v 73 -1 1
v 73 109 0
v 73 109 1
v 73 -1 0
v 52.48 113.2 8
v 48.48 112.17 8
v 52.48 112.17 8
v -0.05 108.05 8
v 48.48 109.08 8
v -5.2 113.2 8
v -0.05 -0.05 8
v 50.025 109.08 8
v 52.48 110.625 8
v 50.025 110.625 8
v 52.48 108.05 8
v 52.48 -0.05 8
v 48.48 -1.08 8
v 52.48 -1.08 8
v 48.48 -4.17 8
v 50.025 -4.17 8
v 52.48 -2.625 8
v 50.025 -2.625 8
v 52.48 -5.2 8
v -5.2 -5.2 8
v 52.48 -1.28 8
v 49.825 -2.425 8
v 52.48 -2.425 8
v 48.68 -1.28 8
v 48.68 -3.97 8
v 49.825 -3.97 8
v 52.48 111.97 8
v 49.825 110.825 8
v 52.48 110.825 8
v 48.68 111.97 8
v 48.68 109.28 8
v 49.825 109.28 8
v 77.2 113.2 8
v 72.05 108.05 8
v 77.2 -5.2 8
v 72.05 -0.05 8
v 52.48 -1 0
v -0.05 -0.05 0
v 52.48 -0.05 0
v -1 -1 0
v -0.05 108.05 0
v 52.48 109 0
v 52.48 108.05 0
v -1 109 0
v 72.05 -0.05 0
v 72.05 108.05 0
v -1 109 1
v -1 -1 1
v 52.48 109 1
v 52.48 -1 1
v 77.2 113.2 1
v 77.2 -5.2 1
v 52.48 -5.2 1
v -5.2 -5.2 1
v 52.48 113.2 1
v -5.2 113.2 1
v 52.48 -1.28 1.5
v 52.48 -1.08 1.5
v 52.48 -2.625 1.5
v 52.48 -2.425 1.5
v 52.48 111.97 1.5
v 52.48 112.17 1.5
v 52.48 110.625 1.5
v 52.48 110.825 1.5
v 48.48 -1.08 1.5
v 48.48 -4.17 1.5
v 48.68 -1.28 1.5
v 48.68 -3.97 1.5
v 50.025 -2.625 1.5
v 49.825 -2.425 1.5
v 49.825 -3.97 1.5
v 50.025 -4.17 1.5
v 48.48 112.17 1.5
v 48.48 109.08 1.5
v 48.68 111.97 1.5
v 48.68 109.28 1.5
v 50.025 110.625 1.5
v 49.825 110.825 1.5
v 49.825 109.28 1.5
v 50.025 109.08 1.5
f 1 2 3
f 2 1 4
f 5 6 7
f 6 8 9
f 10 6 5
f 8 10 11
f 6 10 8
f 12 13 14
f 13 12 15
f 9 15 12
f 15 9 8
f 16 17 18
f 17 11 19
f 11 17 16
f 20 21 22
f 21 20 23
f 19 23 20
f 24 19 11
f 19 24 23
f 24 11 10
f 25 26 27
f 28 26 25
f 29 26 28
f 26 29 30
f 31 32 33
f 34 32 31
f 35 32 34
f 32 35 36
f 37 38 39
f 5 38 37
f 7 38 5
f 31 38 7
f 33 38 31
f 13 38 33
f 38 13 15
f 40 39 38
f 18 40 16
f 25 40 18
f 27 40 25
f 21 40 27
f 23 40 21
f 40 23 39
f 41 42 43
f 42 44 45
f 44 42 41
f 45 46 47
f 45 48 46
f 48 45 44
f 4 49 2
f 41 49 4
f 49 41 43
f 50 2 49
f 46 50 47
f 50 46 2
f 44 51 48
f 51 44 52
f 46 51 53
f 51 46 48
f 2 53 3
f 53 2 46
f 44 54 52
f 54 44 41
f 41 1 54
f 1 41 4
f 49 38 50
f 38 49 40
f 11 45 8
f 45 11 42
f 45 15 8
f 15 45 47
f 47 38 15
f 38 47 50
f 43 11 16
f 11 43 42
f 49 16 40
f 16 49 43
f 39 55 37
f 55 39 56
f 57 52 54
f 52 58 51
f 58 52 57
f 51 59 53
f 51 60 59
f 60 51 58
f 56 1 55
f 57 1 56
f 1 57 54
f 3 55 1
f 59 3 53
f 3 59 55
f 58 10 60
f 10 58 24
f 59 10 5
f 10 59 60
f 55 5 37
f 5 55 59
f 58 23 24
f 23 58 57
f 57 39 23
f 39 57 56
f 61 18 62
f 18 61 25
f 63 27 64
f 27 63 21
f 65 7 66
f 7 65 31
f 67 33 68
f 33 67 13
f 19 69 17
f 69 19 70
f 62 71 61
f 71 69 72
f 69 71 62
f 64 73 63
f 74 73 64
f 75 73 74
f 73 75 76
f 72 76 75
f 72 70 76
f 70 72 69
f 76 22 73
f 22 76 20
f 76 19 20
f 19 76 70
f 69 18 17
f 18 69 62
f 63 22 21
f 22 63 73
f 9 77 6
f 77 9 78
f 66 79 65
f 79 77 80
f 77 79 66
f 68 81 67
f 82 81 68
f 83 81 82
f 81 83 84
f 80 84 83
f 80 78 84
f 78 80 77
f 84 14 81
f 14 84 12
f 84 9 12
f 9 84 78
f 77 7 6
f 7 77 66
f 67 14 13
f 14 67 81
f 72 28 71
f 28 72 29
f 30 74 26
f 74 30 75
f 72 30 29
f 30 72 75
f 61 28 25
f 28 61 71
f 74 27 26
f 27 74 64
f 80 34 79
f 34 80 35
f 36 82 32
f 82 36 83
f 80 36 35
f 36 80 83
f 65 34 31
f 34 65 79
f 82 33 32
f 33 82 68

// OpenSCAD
// Generated by SolidPython 1.0.4 on 2021-07-12 16:52:22


union() {
	difference() {
		difference() {
			difference() {
				union() {
					difference() {
						translate(v = [-1.0000000000, -1.0000000000, 0]) {
							cube(size = [74.0000000000, 110.0000000000, 8]);
						}
						translate(v = [-0.0500000000, -0.0500000000, 0]) {
							cube(size = [72.1000000000, 108.1000000000, 8]);
						}
					}
					translate(v = [0, 0, 1]) {
						difference() {
							translate(v = [-5.2000000000, -5.2000000000, 0]) {
								cube(size = [82.4000000000, 118.4000000000, 7]);
							}
							translate(v = [-1.0000000000, -1.0000000000, 0]) {
								cube(size = [74.0000000000, 110.0000000000, 7]);
							}
						}
					}
				}
				translate(v = [52.4800000000, -5.2000000000, 0]) {
					cube(size = [24.7200000000, 118.4000000000, 8]);
				}
			}
			translate(v = [48.4800000000, -4.1700000000, 0]) {
				translate(v = [0, 0, 1.5000000000]) {
					translate(v = [4, 3.0900000000, 0]) {
						rotate(a = -180) {
							union() {
								translate(v = [2.4550000000, 0, 0]) {
									cube(size = [1.5450000000, 3.0900000000, 6.5000000000]);
								}
								cube(size = [4, 1.5450000000, 6.5000000000]);
							}
						}
					}
				}
			}
		}
		translate(v = [48.4800000000, 109.0800000000, 0]) {
			translate(v = [0, 0, 1.5000000000]) {
				translate(v = [4, 3.0900000000, 0]) {
					rotate(a = -180) {
						union() {
							translate(v = [2.4550000000, 0, 0]) {
								cube(size = [1.5450000000, 3.0900000000, 6.5000000000]);
							}
							cube(size = [4, 1.5450000000, 6.5000000000]);
						}
					}
				}
			}
		}
	}
	union() {
		union() {
			difference() {
				union() {
					difference() {
						translate(v = [-1.0000000000, -1.0000000000, 0]) {
							cube(size = [74.0000000000, 110.0000000000, 8]);
						}
						translate(v = [-0.0500000000, -0.0500000000, 0]) {
							cube(size = [72.1000000000, 108.1000000000, 8]);
						}
					}
					translate(v = [0, 0, 1]) {
						difference() {
							translate(v = [-5.2000000000, -5.2000000000, 0]) {
								cube(size = [82.4000000000, 118.4000000000, 7]);
							}
							translate(v = [-1.0000000000, -1.0000000000, 0]) {
								cube(size = [74.0000000000, 110.0000000000, 7]);
							}
						}
					}
				}
				translate(v = [-5.2000000000, -5.2000000000, 0]) {
					cube(size = [57.6800000000, 118.4000000000, 8]);
				}
			}
			translate(v = [48.4800000000, -4.1700000000, 0]) {
				translate(v = [0.2000000000, 0.2000000000, 0]) {
					translate(v = [0, 0, 1.5000000000]) {
						translate(v = [3.8000000000, 2.6900000000, 0]) {
							rotate(a = -180) {
								union() {
									translate(v = [2.6550000000, 0, 0]) {
										cube(size = [1.1450000000, 2.6900000000, 6.5000000000]);
									}
									cube(size = [3.8000000000, 1.1450000000, 6.5000000000]);
								}
							}
						}
					}
				}
			}
		}
		translate(v = [48.4800000000, 109.0800000000, 0]) {
			translate(v = [0.2000000000, 0.2000000000, 0]) {
				translate(v = [0, 0, 1.5000000000]) {
					translate(v = [3.8000000000, 2.6900000000, 0]) {
						rotate(a = -180) {
							union() {
								translate(v = [2.6550000000, 0, 0]) {
									cube(size = [1.1450000000, 2.6900000000, 6.5000000000]);
								}
								cube(size = [3.8000000000, 1.1450000000, 6.5000000000]);
							}
						}
					}
				}
			}
		}
	}
}
